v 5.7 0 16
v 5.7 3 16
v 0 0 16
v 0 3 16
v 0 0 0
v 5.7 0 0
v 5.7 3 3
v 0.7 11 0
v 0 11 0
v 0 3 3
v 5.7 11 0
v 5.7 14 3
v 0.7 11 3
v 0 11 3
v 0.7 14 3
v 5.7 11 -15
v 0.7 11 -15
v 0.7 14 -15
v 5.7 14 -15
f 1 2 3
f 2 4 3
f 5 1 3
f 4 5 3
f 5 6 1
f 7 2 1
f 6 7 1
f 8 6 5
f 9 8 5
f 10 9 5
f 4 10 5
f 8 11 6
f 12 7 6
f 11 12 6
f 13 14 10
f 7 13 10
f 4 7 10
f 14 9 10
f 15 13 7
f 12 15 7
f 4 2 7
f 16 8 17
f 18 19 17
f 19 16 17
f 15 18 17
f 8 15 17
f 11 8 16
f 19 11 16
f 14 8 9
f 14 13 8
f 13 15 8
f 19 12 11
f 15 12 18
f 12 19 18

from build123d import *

# Parameters (mm, degrees)
BOSS_EXTRUDE1_DEPTH = 5.7
SKETCH2_W           = 0.7
SKETCH2_H           = 3
CUT_EXTRUDE1_DEPTH  = 19


with BuildPart() as part:
    # Sketch1 → Boss-Extrude1 (new body)
    with BuildSketch(Plane(origin=(0, 0, 0), x_dir=(0, 0, -1), z_dir=(1, 0, 0))):
        Polygon((-16, 3), (-3, 3), (-3, 14), (15, 14), (15, 11), (0, 11), (0, 0), (-16, 0), align=None)
    extrude(amount=BOSS_EXTRUDE1_DEPTH)

    # Sketch2 → Cut-Extrude1 (cut, through all)
    with BuildSketch(Plane.XY.offset(3)):
        with Locations((0.35, 12.5)):
            Rectangle(SKETCH2_W, SKETCH2_H)
    extrude(amount=-CUT_EXTRUDE1_DEPTH, mode=Mode.SUBTRACT)


solid = part.part
